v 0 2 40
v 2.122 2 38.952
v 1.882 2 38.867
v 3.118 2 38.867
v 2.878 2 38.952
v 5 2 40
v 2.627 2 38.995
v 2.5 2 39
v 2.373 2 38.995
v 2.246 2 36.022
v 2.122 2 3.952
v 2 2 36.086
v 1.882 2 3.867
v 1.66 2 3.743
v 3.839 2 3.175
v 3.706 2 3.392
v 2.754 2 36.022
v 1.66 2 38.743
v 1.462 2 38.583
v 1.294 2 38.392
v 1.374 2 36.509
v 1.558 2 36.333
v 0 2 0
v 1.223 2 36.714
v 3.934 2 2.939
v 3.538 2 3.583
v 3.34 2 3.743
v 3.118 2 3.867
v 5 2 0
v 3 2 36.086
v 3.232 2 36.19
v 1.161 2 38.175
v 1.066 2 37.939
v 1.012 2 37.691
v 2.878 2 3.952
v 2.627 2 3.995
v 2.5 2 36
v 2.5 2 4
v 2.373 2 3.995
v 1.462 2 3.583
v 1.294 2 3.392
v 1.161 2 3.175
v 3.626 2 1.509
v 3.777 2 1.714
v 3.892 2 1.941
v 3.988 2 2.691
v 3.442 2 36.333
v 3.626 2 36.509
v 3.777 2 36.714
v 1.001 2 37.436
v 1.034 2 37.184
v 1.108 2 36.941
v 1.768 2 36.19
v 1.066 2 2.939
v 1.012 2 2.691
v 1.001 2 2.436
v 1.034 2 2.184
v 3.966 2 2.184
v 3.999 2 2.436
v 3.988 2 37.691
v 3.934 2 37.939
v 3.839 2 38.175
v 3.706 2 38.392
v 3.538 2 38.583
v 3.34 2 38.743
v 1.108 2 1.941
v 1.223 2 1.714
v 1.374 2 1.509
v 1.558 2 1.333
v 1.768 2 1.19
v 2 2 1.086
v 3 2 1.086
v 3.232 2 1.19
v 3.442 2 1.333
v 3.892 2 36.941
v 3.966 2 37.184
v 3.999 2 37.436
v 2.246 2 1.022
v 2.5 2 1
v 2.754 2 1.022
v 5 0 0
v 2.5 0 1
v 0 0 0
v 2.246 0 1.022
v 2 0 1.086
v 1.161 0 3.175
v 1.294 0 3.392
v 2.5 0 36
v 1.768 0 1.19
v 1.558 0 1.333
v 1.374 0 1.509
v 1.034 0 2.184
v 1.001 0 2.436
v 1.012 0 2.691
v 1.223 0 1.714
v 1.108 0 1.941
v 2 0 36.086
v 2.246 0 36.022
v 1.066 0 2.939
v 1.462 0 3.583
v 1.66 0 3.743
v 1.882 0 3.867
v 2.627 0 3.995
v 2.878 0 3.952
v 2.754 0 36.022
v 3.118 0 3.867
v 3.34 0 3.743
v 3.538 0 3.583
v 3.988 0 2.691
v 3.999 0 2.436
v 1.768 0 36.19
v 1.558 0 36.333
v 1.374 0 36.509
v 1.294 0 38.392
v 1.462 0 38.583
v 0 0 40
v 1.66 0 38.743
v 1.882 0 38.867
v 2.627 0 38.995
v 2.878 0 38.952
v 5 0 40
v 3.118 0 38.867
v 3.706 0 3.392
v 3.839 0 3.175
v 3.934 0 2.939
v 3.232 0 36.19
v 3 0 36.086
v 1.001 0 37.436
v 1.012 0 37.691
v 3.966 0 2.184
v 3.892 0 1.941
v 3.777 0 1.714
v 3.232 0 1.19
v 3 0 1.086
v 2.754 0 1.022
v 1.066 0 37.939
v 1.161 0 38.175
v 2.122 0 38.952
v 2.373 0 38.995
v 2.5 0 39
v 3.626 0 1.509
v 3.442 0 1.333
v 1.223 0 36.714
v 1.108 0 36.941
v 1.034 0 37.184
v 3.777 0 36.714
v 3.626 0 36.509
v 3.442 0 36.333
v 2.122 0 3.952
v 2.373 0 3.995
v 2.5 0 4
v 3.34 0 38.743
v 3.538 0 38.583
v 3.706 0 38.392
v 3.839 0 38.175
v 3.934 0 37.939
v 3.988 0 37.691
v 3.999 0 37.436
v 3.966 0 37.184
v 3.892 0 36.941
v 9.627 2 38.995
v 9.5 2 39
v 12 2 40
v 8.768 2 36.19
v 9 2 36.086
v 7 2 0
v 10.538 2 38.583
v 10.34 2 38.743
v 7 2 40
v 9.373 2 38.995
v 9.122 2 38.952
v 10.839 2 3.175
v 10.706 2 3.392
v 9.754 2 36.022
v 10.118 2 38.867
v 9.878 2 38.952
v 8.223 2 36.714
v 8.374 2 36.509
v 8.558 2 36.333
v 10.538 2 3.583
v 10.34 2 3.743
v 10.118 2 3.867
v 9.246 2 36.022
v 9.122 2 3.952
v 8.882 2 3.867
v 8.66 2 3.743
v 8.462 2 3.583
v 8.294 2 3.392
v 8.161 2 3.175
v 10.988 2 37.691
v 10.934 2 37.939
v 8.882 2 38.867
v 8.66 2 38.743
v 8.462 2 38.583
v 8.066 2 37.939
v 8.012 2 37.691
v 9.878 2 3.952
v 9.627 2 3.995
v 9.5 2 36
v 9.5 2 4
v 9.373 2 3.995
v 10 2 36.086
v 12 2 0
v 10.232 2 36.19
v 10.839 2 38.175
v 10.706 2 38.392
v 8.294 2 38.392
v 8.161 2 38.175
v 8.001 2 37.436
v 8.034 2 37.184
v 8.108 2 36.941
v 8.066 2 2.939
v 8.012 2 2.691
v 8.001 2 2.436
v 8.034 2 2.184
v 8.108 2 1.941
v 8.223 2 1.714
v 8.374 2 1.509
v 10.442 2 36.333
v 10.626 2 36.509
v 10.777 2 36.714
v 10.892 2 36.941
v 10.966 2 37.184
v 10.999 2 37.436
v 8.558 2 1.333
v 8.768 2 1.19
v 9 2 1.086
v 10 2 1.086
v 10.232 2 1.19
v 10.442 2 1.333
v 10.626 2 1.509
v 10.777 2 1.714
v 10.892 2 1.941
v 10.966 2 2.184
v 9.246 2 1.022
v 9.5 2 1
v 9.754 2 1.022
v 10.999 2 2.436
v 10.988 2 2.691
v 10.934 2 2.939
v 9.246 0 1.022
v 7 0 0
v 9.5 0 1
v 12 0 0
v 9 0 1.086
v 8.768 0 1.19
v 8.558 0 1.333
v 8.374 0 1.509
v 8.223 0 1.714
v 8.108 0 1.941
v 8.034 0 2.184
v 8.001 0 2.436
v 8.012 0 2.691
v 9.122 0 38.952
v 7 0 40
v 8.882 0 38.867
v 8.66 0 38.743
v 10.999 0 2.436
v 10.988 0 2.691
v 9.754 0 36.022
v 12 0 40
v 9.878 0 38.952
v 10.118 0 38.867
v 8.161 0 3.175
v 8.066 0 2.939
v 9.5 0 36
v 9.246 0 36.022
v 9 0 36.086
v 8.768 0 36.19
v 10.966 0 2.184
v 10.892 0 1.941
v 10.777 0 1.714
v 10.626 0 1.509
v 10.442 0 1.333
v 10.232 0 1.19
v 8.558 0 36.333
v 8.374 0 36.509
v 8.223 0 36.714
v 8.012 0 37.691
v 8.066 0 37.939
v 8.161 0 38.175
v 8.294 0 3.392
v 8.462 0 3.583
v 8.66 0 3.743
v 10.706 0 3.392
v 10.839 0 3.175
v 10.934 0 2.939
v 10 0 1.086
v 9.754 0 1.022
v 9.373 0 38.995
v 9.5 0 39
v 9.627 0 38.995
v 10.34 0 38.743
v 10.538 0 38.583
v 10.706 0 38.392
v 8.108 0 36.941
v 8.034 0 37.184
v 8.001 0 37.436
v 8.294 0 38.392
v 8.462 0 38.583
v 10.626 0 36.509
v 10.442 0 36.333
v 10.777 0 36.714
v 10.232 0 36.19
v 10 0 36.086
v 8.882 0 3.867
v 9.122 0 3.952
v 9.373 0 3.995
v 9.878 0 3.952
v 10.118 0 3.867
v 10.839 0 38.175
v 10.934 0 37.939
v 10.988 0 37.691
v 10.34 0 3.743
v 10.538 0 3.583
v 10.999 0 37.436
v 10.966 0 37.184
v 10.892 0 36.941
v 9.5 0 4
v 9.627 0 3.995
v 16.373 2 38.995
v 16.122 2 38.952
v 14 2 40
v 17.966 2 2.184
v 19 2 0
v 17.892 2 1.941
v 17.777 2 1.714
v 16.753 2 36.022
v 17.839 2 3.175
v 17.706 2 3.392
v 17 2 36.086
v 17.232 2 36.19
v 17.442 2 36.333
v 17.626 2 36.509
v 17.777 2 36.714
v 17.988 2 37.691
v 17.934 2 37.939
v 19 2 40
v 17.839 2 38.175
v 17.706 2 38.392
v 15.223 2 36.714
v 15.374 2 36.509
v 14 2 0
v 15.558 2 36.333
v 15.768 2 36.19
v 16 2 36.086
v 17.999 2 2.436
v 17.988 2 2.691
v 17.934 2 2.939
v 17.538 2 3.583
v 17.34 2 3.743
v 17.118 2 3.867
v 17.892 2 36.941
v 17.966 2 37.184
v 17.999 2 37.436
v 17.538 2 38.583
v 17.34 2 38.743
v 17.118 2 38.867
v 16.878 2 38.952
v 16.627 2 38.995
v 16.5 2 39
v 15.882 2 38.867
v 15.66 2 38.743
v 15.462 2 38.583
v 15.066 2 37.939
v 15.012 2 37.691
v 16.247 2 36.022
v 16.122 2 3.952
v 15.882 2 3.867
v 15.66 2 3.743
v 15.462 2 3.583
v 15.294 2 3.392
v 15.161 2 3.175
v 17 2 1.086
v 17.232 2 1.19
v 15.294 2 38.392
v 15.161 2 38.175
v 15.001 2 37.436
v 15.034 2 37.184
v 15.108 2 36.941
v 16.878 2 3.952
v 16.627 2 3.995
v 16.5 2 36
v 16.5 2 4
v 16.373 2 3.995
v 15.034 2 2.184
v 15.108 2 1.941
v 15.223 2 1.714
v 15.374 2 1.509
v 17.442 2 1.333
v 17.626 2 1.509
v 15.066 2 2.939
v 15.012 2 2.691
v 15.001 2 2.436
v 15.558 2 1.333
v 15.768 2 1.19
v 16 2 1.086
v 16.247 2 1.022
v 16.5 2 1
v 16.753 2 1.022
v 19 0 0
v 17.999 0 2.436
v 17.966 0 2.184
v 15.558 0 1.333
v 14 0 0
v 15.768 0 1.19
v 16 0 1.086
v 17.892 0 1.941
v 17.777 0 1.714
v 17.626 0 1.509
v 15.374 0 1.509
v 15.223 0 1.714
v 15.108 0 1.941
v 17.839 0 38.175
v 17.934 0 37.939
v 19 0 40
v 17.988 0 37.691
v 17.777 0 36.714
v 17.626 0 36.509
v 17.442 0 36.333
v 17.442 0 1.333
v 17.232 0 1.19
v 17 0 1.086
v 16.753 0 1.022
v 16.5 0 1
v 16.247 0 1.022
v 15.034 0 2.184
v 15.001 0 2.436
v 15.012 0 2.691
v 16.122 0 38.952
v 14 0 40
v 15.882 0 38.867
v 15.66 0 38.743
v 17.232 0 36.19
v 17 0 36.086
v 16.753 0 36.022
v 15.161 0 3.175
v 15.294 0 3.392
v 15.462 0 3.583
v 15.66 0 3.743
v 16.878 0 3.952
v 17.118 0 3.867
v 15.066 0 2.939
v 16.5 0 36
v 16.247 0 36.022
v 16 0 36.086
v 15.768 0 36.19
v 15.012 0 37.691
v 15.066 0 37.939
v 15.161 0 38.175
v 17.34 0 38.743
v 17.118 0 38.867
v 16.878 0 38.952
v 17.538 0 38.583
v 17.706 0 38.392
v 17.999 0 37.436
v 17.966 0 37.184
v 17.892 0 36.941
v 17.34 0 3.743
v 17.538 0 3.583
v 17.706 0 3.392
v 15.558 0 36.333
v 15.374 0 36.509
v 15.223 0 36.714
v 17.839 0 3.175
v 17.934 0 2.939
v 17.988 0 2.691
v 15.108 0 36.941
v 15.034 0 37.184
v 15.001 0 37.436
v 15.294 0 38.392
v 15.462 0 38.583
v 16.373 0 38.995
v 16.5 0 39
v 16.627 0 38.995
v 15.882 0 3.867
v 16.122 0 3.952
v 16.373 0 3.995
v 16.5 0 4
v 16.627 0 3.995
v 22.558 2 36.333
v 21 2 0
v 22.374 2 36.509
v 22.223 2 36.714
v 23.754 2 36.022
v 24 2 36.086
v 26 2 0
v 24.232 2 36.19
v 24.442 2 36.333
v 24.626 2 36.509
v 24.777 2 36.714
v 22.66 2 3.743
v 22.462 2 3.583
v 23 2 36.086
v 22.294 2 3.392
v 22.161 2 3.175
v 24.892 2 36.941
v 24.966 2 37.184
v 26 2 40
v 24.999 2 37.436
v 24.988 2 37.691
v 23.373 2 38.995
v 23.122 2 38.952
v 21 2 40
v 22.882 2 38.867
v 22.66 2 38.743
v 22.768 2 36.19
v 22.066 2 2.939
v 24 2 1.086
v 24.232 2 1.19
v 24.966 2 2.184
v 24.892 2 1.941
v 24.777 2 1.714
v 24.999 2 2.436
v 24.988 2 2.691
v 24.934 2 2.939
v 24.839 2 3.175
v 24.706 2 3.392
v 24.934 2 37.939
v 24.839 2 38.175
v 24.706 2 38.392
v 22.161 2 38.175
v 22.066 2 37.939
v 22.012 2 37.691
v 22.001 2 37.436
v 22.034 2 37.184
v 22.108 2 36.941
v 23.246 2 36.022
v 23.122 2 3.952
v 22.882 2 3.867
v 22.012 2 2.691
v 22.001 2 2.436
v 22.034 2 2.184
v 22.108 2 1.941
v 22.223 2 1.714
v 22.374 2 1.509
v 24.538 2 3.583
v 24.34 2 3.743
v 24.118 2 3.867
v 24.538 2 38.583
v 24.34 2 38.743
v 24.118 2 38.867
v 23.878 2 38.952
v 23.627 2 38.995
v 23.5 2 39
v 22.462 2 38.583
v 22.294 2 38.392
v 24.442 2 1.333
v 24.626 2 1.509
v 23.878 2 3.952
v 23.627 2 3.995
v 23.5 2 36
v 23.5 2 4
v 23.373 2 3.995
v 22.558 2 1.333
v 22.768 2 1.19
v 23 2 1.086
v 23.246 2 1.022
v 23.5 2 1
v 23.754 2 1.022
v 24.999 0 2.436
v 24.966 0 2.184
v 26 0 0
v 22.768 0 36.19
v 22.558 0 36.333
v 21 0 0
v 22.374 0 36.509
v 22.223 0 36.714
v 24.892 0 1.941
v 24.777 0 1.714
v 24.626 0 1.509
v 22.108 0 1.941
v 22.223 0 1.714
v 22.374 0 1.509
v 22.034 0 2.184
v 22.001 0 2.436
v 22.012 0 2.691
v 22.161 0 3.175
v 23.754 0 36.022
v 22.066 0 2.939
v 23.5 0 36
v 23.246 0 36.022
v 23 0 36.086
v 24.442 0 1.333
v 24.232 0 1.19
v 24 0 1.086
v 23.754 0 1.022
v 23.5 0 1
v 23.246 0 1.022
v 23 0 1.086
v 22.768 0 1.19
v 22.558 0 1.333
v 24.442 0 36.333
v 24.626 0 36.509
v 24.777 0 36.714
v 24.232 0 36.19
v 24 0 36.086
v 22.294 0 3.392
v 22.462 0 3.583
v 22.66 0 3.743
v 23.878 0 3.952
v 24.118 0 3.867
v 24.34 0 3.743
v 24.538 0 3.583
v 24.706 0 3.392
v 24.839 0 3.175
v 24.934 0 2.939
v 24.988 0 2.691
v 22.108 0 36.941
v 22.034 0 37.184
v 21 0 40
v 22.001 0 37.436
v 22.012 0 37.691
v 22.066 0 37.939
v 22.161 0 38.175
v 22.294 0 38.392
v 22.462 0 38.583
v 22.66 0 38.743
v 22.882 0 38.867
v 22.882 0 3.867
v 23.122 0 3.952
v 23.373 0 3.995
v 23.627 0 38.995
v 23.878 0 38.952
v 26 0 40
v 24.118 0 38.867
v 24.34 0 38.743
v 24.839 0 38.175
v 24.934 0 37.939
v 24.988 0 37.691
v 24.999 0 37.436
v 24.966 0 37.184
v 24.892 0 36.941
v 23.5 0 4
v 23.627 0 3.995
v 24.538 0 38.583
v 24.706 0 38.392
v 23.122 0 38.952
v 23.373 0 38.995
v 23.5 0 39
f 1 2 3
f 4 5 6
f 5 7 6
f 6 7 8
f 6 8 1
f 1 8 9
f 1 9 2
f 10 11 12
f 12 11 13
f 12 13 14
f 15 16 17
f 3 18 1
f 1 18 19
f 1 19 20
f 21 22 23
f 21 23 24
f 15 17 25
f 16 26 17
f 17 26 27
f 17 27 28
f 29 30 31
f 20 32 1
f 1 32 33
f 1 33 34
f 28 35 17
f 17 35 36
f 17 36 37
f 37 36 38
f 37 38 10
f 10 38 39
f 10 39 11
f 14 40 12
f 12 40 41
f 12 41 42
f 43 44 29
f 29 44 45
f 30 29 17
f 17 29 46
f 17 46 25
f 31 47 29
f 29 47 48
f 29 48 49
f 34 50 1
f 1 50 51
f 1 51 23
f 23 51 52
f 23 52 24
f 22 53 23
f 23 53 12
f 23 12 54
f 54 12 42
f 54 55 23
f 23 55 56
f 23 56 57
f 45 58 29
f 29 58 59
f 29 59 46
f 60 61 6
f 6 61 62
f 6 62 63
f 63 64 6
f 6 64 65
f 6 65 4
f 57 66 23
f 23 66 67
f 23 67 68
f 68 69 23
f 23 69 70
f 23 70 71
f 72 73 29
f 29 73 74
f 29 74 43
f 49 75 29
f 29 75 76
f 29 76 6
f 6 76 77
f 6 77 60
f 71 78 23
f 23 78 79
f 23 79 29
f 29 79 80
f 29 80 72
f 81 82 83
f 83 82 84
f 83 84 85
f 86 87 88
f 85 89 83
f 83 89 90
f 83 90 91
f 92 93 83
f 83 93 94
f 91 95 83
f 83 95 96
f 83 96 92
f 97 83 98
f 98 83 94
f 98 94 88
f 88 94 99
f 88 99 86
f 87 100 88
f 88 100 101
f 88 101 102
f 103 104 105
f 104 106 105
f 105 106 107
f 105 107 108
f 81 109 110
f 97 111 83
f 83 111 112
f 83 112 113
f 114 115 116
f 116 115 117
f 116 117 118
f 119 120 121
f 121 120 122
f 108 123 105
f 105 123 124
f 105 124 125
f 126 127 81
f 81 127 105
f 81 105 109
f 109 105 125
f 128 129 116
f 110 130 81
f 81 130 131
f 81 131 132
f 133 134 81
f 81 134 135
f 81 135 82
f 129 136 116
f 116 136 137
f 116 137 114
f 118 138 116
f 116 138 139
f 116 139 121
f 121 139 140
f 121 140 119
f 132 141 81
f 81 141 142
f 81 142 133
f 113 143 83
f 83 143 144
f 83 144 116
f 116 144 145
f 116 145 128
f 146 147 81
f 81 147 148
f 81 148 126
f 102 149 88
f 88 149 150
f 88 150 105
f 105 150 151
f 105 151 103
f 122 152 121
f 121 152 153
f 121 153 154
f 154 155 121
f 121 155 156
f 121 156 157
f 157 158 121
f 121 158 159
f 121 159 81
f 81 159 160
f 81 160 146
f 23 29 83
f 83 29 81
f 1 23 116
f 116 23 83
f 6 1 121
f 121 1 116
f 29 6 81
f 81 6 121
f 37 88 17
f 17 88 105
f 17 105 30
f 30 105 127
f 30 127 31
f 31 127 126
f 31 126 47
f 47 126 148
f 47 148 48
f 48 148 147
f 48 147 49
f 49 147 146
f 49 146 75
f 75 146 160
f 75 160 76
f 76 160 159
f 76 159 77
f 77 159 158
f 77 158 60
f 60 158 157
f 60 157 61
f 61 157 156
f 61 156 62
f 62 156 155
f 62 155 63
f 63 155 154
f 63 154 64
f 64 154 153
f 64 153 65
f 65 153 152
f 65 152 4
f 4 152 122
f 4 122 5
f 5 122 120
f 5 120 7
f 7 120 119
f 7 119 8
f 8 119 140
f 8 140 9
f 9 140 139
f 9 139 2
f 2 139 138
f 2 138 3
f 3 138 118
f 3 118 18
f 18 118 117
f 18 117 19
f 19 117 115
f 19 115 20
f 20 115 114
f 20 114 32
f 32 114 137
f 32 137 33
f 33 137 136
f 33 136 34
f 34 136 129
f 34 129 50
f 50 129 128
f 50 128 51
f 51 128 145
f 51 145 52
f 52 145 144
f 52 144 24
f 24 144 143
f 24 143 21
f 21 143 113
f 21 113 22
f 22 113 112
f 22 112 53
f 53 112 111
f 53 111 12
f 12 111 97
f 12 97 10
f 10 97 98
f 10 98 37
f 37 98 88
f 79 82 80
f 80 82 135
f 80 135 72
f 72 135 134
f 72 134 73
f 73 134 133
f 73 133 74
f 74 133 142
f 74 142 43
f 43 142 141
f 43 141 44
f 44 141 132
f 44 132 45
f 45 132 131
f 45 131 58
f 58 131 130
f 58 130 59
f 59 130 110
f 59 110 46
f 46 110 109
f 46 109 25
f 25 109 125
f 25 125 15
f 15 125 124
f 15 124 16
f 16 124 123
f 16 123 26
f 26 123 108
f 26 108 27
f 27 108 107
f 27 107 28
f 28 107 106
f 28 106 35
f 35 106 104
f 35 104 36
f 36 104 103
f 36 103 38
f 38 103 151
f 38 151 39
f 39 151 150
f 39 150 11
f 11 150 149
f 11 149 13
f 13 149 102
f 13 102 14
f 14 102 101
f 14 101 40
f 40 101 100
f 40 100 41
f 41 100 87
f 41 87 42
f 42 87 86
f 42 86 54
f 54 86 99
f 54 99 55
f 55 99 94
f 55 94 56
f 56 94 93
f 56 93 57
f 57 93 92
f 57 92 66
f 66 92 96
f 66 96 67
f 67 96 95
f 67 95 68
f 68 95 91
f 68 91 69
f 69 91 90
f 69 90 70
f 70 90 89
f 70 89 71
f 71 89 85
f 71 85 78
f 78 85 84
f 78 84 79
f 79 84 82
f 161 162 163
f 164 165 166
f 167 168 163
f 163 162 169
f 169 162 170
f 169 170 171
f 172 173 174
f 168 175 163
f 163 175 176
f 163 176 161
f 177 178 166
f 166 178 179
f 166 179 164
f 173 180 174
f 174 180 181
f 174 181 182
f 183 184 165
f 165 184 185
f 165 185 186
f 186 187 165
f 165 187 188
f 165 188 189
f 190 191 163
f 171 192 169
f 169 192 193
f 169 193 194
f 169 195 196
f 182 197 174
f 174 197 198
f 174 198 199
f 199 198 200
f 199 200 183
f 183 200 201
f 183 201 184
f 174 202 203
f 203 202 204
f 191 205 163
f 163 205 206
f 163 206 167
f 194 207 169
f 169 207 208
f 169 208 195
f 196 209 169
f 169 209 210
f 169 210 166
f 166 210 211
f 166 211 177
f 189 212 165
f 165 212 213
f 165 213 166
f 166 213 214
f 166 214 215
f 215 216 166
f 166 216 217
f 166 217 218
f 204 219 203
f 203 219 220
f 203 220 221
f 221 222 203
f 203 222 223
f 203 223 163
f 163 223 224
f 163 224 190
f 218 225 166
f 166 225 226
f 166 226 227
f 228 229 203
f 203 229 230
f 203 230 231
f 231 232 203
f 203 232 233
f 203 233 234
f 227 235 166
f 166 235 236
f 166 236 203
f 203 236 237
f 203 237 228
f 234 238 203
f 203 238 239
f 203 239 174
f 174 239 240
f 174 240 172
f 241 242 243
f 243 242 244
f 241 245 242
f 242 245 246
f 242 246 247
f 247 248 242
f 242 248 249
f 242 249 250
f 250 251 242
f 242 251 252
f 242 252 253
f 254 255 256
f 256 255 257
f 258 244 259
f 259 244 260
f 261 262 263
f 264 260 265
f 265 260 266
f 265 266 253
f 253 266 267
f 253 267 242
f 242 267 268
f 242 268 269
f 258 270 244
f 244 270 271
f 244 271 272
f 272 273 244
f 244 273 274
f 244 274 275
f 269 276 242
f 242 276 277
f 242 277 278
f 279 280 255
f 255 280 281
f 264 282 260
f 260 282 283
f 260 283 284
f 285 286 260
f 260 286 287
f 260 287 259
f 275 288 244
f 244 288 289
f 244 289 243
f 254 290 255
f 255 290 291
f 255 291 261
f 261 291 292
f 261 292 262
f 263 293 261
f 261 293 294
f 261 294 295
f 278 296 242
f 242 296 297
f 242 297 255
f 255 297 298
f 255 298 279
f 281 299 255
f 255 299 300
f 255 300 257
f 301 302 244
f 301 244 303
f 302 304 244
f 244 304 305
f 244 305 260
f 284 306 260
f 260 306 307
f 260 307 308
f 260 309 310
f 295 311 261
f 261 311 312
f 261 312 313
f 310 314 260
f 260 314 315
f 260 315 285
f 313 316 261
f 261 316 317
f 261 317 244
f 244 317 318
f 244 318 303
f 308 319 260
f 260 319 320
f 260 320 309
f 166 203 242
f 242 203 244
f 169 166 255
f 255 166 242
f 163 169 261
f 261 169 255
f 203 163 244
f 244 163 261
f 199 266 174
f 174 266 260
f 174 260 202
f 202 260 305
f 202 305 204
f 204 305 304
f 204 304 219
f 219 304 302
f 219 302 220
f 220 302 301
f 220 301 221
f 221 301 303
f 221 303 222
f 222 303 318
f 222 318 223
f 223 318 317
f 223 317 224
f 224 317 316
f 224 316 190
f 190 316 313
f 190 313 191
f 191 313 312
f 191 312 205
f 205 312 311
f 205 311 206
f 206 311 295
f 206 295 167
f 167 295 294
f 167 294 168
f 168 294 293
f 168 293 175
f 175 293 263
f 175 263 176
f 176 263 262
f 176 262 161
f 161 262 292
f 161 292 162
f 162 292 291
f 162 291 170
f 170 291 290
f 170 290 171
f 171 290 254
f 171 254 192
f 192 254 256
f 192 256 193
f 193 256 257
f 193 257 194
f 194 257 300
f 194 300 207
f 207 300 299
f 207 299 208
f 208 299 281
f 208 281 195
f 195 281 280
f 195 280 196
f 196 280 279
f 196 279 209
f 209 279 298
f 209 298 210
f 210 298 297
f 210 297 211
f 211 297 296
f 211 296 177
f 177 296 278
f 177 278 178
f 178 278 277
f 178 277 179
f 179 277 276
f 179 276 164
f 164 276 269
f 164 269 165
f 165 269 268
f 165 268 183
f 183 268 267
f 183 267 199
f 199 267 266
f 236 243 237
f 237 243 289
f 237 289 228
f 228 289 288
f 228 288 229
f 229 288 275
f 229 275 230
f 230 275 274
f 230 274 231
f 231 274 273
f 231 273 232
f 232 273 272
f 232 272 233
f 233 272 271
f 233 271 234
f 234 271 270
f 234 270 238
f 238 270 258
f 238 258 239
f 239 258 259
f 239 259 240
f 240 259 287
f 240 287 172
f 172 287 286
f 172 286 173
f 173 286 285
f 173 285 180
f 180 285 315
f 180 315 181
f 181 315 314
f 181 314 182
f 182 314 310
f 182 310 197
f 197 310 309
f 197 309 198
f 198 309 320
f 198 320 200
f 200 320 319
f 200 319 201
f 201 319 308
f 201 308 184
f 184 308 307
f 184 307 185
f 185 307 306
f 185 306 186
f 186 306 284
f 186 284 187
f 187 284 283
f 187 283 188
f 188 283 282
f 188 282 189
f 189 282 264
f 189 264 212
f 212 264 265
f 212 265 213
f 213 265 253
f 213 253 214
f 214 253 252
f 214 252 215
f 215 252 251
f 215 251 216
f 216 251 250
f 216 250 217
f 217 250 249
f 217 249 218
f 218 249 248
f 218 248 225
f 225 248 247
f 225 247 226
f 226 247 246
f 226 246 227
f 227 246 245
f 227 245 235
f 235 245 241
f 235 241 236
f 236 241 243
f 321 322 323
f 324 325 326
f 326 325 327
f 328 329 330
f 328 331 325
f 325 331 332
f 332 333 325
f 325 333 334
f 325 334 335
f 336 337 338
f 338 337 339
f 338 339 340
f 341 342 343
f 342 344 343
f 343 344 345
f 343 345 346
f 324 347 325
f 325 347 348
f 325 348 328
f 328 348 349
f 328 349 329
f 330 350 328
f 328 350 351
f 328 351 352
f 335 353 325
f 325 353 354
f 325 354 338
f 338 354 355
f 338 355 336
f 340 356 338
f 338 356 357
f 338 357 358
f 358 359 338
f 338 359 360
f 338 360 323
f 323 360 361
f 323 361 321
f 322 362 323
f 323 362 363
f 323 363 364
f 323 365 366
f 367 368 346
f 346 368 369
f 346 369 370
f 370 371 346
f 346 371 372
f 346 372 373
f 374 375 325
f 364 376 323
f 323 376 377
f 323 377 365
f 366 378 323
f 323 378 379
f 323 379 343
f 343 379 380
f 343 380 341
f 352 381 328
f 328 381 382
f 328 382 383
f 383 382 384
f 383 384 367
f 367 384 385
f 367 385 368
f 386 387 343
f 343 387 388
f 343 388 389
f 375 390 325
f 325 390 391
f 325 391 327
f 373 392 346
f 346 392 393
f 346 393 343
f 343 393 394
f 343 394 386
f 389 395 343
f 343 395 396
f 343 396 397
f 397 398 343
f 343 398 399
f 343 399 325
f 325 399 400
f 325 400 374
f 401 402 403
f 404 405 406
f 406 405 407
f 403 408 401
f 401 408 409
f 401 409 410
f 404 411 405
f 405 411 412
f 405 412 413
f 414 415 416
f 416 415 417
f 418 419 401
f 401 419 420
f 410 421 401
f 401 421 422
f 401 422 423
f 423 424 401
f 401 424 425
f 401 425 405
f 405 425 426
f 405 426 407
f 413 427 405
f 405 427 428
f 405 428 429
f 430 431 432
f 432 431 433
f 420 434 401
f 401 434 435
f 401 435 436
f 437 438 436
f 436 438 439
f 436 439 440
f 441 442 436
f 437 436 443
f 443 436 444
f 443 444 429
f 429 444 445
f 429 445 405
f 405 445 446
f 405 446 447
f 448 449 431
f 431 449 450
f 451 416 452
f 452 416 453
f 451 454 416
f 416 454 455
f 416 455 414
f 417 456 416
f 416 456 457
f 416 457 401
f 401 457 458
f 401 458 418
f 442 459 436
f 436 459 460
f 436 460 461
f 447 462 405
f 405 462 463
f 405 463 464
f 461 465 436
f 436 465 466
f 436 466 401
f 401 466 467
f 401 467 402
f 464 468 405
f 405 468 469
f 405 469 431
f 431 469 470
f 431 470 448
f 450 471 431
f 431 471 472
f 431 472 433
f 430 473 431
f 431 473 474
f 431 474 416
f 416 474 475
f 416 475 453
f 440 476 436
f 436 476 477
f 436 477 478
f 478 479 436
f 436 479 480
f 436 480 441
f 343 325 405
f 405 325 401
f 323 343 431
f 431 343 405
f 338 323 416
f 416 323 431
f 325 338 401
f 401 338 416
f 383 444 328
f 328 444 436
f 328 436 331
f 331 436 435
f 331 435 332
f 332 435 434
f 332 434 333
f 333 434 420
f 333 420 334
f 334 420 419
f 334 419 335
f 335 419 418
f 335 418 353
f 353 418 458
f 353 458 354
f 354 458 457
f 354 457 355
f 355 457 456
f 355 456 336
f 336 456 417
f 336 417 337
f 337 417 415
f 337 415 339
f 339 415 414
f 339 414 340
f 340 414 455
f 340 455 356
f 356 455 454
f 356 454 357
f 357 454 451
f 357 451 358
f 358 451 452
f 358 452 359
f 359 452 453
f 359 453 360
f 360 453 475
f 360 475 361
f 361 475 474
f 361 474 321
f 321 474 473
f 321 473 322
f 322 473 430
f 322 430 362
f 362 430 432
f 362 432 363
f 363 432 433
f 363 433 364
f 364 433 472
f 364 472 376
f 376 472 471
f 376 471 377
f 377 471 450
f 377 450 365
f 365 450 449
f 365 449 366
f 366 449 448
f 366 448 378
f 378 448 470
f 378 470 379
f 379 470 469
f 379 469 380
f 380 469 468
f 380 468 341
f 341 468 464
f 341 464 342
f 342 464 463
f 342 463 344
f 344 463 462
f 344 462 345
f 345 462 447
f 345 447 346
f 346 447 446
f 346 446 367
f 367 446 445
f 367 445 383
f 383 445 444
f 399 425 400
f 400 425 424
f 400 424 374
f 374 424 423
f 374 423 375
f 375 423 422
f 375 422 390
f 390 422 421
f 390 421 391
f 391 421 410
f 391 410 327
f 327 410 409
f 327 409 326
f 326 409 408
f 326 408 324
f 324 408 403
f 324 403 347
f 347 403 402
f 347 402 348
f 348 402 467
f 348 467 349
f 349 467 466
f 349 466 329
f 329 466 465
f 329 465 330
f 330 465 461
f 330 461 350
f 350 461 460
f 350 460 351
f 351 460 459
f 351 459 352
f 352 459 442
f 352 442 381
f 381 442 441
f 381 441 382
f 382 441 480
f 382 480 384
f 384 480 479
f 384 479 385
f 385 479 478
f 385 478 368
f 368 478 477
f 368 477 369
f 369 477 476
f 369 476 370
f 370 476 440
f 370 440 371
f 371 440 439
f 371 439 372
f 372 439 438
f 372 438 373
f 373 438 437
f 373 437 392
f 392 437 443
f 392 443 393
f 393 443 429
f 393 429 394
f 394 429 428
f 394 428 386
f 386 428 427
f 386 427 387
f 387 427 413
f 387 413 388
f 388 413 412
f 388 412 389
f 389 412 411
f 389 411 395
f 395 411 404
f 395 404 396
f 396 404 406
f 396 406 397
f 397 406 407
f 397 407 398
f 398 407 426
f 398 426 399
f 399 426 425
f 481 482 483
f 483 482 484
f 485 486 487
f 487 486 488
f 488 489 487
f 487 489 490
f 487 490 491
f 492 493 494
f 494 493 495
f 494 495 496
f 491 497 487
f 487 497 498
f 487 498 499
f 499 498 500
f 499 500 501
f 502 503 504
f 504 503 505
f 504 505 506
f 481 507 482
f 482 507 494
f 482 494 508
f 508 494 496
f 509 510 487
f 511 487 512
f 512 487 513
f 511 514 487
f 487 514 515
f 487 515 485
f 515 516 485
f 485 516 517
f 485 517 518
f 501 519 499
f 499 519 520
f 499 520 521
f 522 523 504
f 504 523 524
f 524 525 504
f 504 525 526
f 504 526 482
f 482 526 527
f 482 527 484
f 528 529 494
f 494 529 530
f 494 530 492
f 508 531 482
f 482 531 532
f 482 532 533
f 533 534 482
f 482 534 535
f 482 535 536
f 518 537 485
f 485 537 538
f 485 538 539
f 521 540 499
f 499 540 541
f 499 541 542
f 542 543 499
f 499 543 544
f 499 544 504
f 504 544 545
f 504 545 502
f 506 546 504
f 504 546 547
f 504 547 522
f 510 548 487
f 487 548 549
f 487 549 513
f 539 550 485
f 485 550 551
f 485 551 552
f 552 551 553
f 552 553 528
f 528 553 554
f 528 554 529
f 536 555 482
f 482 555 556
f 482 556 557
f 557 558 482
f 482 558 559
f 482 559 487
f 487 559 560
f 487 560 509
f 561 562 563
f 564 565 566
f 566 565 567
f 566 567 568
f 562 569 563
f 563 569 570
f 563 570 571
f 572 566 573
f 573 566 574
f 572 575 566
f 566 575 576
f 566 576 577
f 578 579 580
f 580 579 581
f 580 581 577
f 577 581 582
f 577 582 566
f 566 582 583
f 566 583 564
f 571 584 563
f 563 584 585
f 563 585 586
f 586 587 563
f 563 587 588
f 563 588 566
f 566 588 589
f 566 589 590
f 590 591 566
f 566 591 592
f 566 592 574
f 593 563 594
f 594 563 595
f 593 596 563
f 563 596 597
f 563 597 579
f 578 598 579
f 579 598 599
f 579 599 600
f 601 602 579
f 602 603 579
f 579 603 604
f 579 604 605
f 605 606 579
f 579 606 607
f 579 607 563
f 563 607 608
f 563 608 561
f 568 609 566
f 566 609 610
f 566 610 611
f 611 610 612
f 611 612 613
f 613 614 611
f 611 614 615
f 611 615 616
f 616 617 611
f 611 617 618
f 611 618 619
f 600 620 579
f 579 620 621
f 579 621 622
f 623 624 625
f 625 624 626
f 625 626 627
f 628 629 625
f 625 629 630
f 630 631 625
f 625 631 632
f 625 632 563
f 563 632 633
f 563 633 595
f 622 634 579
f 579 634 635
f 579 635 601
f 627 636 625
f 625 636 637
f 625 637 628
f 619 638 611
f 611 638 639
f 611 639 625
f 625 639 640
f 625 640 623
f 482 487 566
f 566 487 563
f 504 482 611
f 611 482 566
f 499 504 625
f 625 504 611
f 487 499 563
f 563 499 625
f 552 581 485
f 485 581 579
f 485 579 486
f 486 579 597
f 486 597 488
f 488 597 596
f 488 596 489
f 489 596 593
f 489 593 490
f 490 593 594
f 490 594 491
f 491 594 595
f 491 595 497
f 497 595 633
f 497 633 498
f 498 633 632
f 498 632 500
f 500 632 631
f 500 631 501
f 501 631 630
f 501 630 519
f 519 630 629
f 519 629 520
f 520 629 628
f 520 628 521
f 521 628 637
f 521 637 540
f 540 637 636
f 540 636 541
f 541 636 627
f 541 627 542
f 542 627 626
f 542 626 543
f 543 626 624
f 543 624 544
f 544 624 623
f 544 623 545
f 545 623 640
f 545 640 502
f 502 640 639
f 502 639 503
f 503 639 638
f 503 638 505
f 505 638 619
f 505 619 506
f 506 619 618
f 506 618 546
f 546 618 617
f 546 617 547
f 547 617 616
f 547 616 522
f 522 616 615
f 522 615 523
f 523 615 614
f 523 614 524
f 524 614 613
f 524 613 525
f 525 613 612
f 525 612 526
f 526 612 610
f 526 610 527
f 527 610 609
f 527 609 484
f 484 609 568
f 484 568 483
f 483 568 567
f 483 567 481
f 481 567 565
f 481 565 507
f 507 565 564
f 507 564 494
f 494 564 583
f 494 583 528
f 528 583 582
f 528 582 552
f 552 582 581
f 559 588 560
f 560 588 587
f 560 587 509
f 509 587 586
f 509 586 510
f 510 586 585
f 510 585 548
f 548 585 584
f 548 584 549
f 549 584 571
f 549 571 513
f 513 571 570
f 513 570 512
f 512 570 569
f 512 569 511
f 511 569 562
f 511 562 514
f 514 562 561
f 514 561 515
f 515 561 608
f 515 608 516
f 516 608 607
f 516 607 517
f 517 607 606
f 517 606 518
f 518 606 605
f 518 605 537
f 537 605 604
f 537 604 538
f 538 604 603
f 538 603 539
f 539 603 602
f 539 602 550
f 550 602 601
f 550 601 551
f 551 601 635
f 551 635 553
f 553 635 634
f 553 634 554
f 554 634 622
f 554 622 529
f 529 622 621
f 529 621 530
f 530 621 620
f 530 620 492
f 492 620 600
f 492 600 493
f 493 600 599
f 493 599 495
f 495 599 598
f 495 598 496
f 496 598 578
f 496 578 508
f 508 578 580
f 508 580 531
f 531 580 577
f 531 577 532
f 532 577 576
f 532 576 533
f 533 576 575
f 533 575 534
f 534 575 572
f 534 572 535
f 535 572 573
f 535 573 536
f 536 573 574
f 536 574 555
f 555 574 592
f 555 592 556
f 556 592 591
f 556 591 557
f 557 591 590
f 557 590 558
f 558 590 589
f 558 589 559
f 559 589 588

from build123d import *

# Parameters (mm, degrees)
SKETCH_1_W             = 5
SKETCH_1_H             = 40
SKETCH_1_R             = 1.5
EXTRUDE_1_DEPTH        = 2
PATTERN_LINEAR_2_COUNT = 4
PATTERN_LINEAR_2_PITCH = 7


with BuildPart() as part:
    # 草图1 → 凸台-拉伸1 (new body)
    with BuildSketch(Plane(origin=(0, 0, 0), x_dir=(1, 0, 0), z_dir=(0, 1, 0))):
        with Locations((2.5, -20)):
            Rectangle(SKETCH_1_W, SKETCH_1_H)
        with Locations(Location((2.5, -2.5, 0), (0, 0, 270))):
            Circle(SKETCH_1_R, mode=Mode.SUBTRACT)
        with Locations(Location((2.5, -37.5, 0), (0, 0, 270))):
            Circle(SKETCH_1_R, mode=Mode.SUBTRACT)
    extrude(amount=EXTRUDE_1_DEPTH)


with BuildPart() as pattern_linear_2_1:
    # 阵列(线性)2: pattern copy
    add(part.part.moved(Location(Vector(1, 0, 0) * (1 * PATTERN_LINEAR_2_PITCH))))


with BuildPart() as pattern_linear_2_2:
    # 阵列(线性)2: pattern copy
    add(part.part.moved(Location(Vector(1, 0, 0) * (2 * PATTERN_LINEAR_2_PITCH))))


with BuildPart() as pattern_linear_2_3:
    # 阵列(线性)2: pattern copy
    add(part.part.moved(Location(Vector(1, 0, 0) * (3 * PATTERN_LINEAR_2_PITCH))))


solid = Compound([part.part, pattern_linear_2_1.part, pattern_linear_2_2.part, pattern_linear_2_3.part])
